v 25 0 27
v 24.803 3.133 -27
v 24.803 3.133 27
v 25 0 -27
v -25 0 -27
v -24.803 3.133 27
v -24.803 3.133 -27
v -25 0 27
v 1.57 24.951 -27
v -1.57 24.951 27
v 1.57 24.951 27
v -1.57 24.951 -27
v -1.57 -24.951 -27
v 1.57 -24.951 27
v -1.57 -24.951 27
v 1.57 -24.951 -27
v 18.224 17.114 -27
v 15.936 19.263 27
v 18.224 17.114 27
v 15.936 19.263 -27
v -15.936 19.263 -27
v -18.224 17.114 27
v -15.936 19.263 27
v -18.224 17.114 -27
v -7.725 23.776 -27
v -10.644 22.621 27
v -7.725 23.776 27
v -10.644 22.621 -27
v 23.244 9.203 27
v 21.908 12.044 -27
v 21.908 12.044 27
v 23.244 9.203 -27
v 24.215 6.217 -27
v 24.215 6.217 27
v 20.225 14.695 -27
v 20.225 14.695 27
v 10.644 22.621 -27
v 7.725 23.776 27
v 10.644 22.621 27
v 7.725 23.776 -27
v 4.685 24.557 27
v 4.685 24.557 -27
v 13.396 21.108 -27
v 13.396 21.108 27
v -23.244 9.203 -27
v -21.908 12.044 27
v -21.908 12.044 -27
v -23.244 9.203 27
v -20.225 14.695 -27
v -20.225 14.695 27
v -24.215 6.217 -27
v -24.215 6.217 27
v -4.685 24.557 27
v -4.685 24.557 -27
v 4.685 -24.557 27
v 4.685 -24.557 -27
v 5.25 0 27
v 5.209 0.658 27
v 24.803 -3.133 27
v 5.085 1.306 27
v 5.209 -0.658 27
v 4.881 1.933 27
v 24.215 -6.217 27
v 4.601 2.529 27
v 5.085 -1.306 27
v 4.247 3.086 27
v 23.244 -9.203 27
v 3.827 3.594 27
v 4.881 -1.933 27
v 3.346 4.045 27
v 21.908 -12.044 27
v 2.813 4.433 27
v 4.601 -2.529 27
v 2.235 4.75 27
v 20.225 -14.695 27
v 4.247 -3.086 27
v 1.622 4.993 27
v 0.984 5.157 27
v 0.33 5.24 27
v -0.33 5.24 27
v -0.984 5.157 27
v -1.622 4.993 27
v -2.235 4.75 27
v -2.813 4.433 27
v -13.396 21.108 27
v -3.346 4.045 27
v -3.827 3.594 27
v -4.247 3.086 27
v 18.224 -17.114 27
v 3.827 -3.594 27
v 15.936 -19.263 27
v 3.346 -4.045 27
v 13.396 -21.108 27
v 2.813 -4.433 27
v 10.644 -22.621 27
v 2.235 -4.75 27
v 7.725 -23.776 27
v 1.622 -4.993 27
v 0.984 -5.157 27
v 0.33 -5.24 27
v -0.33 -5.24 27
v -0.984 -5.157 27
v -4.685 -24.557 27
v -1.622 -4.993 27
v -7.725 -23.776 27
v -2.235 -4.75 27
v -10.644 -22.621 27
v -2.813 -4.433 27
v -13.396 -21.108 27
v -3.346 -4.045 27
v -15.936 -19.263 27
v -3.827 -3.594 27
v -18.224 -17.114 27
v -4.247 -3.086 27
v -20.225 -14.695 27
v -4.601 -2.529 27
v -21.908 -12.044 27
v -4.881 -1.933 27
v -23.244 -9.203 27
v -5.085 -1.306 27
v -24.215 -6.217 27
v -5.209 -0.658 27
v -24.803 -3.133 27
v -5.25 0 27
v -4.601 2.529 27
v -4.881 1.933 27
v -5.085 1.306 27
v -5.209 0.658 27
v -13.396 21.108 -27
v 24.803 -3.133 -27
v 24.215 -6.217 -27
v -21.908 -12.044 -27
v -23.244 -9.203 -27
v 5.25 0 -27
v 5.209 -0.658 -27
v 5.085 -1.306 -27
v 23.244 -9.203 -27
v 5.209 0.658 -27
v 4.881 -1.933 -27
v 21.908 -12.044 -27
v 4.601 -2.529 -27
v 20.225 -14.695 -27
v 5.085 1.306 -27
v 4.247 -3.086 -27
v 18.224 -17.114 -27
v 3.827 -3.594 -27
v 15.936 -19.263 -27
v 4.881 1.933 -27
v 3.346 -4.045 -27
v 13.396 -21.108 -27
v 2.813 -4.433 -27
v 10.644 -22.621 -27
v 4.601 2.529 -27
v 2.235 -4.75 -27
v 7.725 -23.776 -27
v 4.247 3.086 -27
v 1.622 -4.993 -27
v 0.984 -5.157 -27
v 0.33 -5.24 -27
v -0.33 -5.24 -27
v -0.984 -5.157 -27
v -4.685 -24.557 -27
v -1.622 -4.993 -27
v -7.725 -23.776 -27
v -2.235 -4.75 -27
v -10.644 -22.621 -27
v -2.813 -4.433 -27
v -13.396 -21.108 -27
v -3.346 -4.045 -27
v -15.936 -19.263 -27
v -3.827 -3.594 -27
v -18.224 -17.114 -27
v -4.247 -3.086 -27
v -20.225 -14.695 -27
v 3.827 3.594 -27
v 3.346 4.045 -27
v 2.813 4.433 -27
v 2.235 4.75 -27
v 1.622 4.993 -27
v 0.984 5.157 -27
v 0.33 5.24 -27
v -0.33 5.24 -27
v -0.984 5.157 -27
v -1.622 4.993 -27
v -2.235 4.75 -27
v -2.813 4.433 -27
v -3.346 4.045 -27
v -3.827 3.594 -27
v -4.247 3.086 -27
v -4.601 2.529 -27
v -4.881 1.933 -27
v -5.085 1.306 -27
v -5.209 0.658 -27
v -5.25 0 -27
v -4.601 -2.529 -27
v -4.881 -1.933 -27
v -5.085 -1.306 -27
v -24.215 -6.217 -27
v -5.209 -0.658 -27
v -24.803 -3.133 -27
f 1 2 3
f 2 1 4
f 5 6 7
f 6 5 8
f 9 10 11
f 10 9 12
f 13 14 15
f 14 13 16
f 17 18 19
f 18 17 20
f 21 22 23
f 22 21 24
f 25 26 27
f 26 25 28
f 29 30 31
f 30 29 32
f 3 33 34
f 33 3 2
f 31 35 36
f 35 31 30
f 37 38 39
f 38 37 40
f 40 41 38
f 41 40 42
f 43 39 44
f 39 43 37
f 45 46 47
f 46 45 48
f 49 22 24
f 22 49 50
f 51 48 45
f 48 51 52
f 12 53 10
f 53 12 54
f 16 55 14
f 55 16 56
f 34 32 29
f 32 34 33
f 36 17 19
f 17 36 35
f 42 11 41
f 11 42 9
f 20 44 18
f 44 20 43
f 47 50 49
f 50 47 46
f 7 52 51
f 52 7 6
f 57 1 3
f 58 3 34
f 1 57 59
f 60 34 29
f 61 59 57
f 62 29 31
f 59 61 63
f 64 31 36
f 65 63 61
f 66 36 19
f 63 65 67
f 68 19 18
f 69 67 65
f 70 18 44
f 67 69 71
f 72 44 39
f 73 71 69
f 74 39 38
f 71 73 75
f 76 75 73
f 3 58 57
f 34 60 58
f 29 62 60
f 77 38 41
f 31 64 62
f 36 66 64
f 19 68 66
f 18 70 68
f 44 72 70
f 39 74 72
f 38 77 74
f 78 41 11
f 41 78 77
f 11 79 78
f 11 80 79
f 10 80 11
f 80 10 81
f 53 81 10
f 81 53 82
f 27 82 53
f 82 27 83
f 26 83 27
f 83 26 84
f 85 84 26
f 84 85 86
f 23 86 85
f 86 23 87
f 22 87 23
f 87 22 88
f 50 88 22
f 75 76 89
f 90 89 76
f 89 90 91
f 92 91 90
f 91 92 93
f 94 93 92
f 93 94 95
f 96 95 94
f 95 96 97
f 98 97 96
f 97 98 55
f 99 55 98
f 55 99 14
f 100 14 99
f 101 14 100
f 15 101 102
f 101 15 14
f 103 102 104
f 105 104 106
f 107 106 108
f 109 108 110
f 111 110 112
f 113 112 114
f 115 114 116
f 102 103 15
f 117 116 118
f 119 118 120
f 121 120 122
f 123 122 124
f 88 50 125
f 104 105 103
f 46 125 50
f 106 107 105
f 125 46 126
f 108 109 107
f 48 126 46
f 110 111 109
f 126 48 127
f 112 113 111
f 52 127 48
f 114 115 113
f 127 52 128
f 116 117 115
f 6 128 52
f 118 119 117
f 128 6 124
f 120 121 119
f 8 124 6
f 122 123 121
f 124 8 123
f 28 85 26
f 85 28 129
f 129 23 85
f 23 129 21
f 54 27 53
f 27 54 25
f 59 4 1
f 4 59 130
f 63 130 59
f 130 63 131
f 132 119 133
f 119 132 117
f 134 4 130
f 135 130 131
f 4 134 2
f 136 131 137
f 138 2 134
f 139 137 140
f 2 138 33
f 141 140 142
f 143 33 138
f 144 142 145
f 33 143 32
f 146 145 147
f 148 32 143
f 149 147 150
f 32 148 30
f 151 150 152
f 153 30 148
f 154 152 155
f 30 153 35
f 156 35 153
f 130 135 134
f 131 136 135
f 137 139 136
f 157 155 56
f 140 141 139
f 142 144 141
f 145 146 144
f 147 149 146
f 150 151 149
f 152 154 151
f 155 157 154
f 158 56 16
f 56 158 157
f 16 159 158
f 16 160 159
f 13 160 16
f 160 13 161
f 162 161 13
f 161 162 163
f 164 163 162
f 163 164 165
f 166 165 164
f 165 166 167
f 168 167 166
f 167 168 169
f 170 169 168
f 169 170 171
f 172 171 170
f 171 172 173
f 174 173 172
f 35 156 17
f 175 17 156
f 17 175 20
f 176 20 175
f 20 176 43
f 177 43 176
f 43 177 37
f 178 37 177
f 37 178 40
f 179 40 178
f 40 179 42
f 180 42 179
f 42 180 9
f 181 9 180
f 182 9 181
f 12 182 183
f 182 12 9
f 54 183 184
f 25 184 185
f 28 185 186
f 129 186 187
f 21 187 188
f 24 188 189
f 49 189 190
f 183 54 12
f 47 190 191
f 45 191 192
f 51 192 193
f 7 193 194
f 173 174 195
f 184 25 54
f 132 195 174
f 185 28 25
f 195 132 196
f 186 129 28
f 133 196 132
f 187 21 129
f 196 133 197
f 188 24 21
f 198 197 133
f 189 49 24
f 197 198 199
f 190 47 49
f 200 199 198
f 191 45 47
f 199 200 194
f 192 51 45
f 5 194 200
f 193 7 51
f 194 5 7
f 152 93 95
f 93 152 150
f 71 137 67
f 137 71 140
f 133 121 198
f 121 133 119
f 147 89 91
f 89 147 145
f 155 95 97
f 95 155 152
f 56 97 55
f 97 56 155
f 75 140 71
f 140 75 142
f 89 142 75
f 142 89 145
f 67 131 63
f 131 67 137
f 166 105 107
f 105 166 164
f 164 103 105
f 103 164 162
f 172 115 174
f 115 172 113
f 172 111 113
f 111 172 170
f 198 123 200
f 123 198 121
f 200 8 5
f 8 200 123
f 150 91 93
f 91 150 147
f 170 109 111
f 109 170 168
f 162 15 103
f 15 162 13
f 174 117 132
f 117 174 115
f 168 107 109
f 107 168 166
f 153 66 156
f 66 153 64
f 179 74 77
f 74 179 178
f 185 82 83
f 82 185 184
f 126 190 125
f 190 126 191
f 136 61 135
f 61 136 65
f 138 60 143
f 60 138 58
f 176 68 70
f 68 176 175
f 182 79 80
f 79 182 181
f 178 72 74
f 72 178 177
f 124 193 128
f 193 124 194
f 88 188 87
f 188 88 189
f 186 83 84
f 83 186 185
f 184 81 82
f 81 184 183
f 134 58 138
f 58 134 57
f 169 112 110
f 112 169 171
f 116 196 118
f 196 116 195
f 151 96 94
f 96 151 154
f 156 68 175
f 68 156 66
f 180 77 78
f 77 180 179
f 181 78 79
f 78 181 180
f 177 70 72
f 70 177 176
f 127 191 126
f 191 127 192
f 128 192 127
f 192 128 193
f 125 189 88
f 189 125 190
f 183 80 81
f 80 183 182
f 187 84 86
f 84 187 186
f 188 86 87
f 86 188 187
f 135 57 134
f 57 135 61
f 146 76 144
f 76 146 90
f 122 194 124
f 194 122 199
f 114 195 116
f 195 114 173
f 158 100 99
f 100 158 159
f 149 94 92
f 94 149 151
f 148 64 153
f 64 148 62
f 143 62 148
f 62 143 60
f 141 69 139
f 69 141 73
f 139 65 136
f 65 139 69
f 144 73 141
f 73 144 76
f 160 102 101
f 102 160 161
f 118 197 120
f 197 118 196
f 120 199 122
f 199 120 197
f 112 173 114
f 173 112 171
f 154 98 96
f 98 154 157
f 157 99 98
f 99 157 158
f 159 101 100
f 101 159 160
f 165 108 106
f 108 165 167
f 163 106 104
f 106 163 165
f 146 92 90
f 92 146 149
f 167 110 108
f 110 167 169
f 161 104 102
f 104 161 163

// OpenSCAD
$fn = 50;


difference() {
	union() {
		translate(v = [0, 0, -27.0000000000]) {
			cylinder(h = 54, r = 25.0000000000);
		}
	}
	union() {
		translate(v = [0, 0, -100.0000000000]) {
			cylinder(h = 200, r = 5.2500000000);
		}
	}
}
